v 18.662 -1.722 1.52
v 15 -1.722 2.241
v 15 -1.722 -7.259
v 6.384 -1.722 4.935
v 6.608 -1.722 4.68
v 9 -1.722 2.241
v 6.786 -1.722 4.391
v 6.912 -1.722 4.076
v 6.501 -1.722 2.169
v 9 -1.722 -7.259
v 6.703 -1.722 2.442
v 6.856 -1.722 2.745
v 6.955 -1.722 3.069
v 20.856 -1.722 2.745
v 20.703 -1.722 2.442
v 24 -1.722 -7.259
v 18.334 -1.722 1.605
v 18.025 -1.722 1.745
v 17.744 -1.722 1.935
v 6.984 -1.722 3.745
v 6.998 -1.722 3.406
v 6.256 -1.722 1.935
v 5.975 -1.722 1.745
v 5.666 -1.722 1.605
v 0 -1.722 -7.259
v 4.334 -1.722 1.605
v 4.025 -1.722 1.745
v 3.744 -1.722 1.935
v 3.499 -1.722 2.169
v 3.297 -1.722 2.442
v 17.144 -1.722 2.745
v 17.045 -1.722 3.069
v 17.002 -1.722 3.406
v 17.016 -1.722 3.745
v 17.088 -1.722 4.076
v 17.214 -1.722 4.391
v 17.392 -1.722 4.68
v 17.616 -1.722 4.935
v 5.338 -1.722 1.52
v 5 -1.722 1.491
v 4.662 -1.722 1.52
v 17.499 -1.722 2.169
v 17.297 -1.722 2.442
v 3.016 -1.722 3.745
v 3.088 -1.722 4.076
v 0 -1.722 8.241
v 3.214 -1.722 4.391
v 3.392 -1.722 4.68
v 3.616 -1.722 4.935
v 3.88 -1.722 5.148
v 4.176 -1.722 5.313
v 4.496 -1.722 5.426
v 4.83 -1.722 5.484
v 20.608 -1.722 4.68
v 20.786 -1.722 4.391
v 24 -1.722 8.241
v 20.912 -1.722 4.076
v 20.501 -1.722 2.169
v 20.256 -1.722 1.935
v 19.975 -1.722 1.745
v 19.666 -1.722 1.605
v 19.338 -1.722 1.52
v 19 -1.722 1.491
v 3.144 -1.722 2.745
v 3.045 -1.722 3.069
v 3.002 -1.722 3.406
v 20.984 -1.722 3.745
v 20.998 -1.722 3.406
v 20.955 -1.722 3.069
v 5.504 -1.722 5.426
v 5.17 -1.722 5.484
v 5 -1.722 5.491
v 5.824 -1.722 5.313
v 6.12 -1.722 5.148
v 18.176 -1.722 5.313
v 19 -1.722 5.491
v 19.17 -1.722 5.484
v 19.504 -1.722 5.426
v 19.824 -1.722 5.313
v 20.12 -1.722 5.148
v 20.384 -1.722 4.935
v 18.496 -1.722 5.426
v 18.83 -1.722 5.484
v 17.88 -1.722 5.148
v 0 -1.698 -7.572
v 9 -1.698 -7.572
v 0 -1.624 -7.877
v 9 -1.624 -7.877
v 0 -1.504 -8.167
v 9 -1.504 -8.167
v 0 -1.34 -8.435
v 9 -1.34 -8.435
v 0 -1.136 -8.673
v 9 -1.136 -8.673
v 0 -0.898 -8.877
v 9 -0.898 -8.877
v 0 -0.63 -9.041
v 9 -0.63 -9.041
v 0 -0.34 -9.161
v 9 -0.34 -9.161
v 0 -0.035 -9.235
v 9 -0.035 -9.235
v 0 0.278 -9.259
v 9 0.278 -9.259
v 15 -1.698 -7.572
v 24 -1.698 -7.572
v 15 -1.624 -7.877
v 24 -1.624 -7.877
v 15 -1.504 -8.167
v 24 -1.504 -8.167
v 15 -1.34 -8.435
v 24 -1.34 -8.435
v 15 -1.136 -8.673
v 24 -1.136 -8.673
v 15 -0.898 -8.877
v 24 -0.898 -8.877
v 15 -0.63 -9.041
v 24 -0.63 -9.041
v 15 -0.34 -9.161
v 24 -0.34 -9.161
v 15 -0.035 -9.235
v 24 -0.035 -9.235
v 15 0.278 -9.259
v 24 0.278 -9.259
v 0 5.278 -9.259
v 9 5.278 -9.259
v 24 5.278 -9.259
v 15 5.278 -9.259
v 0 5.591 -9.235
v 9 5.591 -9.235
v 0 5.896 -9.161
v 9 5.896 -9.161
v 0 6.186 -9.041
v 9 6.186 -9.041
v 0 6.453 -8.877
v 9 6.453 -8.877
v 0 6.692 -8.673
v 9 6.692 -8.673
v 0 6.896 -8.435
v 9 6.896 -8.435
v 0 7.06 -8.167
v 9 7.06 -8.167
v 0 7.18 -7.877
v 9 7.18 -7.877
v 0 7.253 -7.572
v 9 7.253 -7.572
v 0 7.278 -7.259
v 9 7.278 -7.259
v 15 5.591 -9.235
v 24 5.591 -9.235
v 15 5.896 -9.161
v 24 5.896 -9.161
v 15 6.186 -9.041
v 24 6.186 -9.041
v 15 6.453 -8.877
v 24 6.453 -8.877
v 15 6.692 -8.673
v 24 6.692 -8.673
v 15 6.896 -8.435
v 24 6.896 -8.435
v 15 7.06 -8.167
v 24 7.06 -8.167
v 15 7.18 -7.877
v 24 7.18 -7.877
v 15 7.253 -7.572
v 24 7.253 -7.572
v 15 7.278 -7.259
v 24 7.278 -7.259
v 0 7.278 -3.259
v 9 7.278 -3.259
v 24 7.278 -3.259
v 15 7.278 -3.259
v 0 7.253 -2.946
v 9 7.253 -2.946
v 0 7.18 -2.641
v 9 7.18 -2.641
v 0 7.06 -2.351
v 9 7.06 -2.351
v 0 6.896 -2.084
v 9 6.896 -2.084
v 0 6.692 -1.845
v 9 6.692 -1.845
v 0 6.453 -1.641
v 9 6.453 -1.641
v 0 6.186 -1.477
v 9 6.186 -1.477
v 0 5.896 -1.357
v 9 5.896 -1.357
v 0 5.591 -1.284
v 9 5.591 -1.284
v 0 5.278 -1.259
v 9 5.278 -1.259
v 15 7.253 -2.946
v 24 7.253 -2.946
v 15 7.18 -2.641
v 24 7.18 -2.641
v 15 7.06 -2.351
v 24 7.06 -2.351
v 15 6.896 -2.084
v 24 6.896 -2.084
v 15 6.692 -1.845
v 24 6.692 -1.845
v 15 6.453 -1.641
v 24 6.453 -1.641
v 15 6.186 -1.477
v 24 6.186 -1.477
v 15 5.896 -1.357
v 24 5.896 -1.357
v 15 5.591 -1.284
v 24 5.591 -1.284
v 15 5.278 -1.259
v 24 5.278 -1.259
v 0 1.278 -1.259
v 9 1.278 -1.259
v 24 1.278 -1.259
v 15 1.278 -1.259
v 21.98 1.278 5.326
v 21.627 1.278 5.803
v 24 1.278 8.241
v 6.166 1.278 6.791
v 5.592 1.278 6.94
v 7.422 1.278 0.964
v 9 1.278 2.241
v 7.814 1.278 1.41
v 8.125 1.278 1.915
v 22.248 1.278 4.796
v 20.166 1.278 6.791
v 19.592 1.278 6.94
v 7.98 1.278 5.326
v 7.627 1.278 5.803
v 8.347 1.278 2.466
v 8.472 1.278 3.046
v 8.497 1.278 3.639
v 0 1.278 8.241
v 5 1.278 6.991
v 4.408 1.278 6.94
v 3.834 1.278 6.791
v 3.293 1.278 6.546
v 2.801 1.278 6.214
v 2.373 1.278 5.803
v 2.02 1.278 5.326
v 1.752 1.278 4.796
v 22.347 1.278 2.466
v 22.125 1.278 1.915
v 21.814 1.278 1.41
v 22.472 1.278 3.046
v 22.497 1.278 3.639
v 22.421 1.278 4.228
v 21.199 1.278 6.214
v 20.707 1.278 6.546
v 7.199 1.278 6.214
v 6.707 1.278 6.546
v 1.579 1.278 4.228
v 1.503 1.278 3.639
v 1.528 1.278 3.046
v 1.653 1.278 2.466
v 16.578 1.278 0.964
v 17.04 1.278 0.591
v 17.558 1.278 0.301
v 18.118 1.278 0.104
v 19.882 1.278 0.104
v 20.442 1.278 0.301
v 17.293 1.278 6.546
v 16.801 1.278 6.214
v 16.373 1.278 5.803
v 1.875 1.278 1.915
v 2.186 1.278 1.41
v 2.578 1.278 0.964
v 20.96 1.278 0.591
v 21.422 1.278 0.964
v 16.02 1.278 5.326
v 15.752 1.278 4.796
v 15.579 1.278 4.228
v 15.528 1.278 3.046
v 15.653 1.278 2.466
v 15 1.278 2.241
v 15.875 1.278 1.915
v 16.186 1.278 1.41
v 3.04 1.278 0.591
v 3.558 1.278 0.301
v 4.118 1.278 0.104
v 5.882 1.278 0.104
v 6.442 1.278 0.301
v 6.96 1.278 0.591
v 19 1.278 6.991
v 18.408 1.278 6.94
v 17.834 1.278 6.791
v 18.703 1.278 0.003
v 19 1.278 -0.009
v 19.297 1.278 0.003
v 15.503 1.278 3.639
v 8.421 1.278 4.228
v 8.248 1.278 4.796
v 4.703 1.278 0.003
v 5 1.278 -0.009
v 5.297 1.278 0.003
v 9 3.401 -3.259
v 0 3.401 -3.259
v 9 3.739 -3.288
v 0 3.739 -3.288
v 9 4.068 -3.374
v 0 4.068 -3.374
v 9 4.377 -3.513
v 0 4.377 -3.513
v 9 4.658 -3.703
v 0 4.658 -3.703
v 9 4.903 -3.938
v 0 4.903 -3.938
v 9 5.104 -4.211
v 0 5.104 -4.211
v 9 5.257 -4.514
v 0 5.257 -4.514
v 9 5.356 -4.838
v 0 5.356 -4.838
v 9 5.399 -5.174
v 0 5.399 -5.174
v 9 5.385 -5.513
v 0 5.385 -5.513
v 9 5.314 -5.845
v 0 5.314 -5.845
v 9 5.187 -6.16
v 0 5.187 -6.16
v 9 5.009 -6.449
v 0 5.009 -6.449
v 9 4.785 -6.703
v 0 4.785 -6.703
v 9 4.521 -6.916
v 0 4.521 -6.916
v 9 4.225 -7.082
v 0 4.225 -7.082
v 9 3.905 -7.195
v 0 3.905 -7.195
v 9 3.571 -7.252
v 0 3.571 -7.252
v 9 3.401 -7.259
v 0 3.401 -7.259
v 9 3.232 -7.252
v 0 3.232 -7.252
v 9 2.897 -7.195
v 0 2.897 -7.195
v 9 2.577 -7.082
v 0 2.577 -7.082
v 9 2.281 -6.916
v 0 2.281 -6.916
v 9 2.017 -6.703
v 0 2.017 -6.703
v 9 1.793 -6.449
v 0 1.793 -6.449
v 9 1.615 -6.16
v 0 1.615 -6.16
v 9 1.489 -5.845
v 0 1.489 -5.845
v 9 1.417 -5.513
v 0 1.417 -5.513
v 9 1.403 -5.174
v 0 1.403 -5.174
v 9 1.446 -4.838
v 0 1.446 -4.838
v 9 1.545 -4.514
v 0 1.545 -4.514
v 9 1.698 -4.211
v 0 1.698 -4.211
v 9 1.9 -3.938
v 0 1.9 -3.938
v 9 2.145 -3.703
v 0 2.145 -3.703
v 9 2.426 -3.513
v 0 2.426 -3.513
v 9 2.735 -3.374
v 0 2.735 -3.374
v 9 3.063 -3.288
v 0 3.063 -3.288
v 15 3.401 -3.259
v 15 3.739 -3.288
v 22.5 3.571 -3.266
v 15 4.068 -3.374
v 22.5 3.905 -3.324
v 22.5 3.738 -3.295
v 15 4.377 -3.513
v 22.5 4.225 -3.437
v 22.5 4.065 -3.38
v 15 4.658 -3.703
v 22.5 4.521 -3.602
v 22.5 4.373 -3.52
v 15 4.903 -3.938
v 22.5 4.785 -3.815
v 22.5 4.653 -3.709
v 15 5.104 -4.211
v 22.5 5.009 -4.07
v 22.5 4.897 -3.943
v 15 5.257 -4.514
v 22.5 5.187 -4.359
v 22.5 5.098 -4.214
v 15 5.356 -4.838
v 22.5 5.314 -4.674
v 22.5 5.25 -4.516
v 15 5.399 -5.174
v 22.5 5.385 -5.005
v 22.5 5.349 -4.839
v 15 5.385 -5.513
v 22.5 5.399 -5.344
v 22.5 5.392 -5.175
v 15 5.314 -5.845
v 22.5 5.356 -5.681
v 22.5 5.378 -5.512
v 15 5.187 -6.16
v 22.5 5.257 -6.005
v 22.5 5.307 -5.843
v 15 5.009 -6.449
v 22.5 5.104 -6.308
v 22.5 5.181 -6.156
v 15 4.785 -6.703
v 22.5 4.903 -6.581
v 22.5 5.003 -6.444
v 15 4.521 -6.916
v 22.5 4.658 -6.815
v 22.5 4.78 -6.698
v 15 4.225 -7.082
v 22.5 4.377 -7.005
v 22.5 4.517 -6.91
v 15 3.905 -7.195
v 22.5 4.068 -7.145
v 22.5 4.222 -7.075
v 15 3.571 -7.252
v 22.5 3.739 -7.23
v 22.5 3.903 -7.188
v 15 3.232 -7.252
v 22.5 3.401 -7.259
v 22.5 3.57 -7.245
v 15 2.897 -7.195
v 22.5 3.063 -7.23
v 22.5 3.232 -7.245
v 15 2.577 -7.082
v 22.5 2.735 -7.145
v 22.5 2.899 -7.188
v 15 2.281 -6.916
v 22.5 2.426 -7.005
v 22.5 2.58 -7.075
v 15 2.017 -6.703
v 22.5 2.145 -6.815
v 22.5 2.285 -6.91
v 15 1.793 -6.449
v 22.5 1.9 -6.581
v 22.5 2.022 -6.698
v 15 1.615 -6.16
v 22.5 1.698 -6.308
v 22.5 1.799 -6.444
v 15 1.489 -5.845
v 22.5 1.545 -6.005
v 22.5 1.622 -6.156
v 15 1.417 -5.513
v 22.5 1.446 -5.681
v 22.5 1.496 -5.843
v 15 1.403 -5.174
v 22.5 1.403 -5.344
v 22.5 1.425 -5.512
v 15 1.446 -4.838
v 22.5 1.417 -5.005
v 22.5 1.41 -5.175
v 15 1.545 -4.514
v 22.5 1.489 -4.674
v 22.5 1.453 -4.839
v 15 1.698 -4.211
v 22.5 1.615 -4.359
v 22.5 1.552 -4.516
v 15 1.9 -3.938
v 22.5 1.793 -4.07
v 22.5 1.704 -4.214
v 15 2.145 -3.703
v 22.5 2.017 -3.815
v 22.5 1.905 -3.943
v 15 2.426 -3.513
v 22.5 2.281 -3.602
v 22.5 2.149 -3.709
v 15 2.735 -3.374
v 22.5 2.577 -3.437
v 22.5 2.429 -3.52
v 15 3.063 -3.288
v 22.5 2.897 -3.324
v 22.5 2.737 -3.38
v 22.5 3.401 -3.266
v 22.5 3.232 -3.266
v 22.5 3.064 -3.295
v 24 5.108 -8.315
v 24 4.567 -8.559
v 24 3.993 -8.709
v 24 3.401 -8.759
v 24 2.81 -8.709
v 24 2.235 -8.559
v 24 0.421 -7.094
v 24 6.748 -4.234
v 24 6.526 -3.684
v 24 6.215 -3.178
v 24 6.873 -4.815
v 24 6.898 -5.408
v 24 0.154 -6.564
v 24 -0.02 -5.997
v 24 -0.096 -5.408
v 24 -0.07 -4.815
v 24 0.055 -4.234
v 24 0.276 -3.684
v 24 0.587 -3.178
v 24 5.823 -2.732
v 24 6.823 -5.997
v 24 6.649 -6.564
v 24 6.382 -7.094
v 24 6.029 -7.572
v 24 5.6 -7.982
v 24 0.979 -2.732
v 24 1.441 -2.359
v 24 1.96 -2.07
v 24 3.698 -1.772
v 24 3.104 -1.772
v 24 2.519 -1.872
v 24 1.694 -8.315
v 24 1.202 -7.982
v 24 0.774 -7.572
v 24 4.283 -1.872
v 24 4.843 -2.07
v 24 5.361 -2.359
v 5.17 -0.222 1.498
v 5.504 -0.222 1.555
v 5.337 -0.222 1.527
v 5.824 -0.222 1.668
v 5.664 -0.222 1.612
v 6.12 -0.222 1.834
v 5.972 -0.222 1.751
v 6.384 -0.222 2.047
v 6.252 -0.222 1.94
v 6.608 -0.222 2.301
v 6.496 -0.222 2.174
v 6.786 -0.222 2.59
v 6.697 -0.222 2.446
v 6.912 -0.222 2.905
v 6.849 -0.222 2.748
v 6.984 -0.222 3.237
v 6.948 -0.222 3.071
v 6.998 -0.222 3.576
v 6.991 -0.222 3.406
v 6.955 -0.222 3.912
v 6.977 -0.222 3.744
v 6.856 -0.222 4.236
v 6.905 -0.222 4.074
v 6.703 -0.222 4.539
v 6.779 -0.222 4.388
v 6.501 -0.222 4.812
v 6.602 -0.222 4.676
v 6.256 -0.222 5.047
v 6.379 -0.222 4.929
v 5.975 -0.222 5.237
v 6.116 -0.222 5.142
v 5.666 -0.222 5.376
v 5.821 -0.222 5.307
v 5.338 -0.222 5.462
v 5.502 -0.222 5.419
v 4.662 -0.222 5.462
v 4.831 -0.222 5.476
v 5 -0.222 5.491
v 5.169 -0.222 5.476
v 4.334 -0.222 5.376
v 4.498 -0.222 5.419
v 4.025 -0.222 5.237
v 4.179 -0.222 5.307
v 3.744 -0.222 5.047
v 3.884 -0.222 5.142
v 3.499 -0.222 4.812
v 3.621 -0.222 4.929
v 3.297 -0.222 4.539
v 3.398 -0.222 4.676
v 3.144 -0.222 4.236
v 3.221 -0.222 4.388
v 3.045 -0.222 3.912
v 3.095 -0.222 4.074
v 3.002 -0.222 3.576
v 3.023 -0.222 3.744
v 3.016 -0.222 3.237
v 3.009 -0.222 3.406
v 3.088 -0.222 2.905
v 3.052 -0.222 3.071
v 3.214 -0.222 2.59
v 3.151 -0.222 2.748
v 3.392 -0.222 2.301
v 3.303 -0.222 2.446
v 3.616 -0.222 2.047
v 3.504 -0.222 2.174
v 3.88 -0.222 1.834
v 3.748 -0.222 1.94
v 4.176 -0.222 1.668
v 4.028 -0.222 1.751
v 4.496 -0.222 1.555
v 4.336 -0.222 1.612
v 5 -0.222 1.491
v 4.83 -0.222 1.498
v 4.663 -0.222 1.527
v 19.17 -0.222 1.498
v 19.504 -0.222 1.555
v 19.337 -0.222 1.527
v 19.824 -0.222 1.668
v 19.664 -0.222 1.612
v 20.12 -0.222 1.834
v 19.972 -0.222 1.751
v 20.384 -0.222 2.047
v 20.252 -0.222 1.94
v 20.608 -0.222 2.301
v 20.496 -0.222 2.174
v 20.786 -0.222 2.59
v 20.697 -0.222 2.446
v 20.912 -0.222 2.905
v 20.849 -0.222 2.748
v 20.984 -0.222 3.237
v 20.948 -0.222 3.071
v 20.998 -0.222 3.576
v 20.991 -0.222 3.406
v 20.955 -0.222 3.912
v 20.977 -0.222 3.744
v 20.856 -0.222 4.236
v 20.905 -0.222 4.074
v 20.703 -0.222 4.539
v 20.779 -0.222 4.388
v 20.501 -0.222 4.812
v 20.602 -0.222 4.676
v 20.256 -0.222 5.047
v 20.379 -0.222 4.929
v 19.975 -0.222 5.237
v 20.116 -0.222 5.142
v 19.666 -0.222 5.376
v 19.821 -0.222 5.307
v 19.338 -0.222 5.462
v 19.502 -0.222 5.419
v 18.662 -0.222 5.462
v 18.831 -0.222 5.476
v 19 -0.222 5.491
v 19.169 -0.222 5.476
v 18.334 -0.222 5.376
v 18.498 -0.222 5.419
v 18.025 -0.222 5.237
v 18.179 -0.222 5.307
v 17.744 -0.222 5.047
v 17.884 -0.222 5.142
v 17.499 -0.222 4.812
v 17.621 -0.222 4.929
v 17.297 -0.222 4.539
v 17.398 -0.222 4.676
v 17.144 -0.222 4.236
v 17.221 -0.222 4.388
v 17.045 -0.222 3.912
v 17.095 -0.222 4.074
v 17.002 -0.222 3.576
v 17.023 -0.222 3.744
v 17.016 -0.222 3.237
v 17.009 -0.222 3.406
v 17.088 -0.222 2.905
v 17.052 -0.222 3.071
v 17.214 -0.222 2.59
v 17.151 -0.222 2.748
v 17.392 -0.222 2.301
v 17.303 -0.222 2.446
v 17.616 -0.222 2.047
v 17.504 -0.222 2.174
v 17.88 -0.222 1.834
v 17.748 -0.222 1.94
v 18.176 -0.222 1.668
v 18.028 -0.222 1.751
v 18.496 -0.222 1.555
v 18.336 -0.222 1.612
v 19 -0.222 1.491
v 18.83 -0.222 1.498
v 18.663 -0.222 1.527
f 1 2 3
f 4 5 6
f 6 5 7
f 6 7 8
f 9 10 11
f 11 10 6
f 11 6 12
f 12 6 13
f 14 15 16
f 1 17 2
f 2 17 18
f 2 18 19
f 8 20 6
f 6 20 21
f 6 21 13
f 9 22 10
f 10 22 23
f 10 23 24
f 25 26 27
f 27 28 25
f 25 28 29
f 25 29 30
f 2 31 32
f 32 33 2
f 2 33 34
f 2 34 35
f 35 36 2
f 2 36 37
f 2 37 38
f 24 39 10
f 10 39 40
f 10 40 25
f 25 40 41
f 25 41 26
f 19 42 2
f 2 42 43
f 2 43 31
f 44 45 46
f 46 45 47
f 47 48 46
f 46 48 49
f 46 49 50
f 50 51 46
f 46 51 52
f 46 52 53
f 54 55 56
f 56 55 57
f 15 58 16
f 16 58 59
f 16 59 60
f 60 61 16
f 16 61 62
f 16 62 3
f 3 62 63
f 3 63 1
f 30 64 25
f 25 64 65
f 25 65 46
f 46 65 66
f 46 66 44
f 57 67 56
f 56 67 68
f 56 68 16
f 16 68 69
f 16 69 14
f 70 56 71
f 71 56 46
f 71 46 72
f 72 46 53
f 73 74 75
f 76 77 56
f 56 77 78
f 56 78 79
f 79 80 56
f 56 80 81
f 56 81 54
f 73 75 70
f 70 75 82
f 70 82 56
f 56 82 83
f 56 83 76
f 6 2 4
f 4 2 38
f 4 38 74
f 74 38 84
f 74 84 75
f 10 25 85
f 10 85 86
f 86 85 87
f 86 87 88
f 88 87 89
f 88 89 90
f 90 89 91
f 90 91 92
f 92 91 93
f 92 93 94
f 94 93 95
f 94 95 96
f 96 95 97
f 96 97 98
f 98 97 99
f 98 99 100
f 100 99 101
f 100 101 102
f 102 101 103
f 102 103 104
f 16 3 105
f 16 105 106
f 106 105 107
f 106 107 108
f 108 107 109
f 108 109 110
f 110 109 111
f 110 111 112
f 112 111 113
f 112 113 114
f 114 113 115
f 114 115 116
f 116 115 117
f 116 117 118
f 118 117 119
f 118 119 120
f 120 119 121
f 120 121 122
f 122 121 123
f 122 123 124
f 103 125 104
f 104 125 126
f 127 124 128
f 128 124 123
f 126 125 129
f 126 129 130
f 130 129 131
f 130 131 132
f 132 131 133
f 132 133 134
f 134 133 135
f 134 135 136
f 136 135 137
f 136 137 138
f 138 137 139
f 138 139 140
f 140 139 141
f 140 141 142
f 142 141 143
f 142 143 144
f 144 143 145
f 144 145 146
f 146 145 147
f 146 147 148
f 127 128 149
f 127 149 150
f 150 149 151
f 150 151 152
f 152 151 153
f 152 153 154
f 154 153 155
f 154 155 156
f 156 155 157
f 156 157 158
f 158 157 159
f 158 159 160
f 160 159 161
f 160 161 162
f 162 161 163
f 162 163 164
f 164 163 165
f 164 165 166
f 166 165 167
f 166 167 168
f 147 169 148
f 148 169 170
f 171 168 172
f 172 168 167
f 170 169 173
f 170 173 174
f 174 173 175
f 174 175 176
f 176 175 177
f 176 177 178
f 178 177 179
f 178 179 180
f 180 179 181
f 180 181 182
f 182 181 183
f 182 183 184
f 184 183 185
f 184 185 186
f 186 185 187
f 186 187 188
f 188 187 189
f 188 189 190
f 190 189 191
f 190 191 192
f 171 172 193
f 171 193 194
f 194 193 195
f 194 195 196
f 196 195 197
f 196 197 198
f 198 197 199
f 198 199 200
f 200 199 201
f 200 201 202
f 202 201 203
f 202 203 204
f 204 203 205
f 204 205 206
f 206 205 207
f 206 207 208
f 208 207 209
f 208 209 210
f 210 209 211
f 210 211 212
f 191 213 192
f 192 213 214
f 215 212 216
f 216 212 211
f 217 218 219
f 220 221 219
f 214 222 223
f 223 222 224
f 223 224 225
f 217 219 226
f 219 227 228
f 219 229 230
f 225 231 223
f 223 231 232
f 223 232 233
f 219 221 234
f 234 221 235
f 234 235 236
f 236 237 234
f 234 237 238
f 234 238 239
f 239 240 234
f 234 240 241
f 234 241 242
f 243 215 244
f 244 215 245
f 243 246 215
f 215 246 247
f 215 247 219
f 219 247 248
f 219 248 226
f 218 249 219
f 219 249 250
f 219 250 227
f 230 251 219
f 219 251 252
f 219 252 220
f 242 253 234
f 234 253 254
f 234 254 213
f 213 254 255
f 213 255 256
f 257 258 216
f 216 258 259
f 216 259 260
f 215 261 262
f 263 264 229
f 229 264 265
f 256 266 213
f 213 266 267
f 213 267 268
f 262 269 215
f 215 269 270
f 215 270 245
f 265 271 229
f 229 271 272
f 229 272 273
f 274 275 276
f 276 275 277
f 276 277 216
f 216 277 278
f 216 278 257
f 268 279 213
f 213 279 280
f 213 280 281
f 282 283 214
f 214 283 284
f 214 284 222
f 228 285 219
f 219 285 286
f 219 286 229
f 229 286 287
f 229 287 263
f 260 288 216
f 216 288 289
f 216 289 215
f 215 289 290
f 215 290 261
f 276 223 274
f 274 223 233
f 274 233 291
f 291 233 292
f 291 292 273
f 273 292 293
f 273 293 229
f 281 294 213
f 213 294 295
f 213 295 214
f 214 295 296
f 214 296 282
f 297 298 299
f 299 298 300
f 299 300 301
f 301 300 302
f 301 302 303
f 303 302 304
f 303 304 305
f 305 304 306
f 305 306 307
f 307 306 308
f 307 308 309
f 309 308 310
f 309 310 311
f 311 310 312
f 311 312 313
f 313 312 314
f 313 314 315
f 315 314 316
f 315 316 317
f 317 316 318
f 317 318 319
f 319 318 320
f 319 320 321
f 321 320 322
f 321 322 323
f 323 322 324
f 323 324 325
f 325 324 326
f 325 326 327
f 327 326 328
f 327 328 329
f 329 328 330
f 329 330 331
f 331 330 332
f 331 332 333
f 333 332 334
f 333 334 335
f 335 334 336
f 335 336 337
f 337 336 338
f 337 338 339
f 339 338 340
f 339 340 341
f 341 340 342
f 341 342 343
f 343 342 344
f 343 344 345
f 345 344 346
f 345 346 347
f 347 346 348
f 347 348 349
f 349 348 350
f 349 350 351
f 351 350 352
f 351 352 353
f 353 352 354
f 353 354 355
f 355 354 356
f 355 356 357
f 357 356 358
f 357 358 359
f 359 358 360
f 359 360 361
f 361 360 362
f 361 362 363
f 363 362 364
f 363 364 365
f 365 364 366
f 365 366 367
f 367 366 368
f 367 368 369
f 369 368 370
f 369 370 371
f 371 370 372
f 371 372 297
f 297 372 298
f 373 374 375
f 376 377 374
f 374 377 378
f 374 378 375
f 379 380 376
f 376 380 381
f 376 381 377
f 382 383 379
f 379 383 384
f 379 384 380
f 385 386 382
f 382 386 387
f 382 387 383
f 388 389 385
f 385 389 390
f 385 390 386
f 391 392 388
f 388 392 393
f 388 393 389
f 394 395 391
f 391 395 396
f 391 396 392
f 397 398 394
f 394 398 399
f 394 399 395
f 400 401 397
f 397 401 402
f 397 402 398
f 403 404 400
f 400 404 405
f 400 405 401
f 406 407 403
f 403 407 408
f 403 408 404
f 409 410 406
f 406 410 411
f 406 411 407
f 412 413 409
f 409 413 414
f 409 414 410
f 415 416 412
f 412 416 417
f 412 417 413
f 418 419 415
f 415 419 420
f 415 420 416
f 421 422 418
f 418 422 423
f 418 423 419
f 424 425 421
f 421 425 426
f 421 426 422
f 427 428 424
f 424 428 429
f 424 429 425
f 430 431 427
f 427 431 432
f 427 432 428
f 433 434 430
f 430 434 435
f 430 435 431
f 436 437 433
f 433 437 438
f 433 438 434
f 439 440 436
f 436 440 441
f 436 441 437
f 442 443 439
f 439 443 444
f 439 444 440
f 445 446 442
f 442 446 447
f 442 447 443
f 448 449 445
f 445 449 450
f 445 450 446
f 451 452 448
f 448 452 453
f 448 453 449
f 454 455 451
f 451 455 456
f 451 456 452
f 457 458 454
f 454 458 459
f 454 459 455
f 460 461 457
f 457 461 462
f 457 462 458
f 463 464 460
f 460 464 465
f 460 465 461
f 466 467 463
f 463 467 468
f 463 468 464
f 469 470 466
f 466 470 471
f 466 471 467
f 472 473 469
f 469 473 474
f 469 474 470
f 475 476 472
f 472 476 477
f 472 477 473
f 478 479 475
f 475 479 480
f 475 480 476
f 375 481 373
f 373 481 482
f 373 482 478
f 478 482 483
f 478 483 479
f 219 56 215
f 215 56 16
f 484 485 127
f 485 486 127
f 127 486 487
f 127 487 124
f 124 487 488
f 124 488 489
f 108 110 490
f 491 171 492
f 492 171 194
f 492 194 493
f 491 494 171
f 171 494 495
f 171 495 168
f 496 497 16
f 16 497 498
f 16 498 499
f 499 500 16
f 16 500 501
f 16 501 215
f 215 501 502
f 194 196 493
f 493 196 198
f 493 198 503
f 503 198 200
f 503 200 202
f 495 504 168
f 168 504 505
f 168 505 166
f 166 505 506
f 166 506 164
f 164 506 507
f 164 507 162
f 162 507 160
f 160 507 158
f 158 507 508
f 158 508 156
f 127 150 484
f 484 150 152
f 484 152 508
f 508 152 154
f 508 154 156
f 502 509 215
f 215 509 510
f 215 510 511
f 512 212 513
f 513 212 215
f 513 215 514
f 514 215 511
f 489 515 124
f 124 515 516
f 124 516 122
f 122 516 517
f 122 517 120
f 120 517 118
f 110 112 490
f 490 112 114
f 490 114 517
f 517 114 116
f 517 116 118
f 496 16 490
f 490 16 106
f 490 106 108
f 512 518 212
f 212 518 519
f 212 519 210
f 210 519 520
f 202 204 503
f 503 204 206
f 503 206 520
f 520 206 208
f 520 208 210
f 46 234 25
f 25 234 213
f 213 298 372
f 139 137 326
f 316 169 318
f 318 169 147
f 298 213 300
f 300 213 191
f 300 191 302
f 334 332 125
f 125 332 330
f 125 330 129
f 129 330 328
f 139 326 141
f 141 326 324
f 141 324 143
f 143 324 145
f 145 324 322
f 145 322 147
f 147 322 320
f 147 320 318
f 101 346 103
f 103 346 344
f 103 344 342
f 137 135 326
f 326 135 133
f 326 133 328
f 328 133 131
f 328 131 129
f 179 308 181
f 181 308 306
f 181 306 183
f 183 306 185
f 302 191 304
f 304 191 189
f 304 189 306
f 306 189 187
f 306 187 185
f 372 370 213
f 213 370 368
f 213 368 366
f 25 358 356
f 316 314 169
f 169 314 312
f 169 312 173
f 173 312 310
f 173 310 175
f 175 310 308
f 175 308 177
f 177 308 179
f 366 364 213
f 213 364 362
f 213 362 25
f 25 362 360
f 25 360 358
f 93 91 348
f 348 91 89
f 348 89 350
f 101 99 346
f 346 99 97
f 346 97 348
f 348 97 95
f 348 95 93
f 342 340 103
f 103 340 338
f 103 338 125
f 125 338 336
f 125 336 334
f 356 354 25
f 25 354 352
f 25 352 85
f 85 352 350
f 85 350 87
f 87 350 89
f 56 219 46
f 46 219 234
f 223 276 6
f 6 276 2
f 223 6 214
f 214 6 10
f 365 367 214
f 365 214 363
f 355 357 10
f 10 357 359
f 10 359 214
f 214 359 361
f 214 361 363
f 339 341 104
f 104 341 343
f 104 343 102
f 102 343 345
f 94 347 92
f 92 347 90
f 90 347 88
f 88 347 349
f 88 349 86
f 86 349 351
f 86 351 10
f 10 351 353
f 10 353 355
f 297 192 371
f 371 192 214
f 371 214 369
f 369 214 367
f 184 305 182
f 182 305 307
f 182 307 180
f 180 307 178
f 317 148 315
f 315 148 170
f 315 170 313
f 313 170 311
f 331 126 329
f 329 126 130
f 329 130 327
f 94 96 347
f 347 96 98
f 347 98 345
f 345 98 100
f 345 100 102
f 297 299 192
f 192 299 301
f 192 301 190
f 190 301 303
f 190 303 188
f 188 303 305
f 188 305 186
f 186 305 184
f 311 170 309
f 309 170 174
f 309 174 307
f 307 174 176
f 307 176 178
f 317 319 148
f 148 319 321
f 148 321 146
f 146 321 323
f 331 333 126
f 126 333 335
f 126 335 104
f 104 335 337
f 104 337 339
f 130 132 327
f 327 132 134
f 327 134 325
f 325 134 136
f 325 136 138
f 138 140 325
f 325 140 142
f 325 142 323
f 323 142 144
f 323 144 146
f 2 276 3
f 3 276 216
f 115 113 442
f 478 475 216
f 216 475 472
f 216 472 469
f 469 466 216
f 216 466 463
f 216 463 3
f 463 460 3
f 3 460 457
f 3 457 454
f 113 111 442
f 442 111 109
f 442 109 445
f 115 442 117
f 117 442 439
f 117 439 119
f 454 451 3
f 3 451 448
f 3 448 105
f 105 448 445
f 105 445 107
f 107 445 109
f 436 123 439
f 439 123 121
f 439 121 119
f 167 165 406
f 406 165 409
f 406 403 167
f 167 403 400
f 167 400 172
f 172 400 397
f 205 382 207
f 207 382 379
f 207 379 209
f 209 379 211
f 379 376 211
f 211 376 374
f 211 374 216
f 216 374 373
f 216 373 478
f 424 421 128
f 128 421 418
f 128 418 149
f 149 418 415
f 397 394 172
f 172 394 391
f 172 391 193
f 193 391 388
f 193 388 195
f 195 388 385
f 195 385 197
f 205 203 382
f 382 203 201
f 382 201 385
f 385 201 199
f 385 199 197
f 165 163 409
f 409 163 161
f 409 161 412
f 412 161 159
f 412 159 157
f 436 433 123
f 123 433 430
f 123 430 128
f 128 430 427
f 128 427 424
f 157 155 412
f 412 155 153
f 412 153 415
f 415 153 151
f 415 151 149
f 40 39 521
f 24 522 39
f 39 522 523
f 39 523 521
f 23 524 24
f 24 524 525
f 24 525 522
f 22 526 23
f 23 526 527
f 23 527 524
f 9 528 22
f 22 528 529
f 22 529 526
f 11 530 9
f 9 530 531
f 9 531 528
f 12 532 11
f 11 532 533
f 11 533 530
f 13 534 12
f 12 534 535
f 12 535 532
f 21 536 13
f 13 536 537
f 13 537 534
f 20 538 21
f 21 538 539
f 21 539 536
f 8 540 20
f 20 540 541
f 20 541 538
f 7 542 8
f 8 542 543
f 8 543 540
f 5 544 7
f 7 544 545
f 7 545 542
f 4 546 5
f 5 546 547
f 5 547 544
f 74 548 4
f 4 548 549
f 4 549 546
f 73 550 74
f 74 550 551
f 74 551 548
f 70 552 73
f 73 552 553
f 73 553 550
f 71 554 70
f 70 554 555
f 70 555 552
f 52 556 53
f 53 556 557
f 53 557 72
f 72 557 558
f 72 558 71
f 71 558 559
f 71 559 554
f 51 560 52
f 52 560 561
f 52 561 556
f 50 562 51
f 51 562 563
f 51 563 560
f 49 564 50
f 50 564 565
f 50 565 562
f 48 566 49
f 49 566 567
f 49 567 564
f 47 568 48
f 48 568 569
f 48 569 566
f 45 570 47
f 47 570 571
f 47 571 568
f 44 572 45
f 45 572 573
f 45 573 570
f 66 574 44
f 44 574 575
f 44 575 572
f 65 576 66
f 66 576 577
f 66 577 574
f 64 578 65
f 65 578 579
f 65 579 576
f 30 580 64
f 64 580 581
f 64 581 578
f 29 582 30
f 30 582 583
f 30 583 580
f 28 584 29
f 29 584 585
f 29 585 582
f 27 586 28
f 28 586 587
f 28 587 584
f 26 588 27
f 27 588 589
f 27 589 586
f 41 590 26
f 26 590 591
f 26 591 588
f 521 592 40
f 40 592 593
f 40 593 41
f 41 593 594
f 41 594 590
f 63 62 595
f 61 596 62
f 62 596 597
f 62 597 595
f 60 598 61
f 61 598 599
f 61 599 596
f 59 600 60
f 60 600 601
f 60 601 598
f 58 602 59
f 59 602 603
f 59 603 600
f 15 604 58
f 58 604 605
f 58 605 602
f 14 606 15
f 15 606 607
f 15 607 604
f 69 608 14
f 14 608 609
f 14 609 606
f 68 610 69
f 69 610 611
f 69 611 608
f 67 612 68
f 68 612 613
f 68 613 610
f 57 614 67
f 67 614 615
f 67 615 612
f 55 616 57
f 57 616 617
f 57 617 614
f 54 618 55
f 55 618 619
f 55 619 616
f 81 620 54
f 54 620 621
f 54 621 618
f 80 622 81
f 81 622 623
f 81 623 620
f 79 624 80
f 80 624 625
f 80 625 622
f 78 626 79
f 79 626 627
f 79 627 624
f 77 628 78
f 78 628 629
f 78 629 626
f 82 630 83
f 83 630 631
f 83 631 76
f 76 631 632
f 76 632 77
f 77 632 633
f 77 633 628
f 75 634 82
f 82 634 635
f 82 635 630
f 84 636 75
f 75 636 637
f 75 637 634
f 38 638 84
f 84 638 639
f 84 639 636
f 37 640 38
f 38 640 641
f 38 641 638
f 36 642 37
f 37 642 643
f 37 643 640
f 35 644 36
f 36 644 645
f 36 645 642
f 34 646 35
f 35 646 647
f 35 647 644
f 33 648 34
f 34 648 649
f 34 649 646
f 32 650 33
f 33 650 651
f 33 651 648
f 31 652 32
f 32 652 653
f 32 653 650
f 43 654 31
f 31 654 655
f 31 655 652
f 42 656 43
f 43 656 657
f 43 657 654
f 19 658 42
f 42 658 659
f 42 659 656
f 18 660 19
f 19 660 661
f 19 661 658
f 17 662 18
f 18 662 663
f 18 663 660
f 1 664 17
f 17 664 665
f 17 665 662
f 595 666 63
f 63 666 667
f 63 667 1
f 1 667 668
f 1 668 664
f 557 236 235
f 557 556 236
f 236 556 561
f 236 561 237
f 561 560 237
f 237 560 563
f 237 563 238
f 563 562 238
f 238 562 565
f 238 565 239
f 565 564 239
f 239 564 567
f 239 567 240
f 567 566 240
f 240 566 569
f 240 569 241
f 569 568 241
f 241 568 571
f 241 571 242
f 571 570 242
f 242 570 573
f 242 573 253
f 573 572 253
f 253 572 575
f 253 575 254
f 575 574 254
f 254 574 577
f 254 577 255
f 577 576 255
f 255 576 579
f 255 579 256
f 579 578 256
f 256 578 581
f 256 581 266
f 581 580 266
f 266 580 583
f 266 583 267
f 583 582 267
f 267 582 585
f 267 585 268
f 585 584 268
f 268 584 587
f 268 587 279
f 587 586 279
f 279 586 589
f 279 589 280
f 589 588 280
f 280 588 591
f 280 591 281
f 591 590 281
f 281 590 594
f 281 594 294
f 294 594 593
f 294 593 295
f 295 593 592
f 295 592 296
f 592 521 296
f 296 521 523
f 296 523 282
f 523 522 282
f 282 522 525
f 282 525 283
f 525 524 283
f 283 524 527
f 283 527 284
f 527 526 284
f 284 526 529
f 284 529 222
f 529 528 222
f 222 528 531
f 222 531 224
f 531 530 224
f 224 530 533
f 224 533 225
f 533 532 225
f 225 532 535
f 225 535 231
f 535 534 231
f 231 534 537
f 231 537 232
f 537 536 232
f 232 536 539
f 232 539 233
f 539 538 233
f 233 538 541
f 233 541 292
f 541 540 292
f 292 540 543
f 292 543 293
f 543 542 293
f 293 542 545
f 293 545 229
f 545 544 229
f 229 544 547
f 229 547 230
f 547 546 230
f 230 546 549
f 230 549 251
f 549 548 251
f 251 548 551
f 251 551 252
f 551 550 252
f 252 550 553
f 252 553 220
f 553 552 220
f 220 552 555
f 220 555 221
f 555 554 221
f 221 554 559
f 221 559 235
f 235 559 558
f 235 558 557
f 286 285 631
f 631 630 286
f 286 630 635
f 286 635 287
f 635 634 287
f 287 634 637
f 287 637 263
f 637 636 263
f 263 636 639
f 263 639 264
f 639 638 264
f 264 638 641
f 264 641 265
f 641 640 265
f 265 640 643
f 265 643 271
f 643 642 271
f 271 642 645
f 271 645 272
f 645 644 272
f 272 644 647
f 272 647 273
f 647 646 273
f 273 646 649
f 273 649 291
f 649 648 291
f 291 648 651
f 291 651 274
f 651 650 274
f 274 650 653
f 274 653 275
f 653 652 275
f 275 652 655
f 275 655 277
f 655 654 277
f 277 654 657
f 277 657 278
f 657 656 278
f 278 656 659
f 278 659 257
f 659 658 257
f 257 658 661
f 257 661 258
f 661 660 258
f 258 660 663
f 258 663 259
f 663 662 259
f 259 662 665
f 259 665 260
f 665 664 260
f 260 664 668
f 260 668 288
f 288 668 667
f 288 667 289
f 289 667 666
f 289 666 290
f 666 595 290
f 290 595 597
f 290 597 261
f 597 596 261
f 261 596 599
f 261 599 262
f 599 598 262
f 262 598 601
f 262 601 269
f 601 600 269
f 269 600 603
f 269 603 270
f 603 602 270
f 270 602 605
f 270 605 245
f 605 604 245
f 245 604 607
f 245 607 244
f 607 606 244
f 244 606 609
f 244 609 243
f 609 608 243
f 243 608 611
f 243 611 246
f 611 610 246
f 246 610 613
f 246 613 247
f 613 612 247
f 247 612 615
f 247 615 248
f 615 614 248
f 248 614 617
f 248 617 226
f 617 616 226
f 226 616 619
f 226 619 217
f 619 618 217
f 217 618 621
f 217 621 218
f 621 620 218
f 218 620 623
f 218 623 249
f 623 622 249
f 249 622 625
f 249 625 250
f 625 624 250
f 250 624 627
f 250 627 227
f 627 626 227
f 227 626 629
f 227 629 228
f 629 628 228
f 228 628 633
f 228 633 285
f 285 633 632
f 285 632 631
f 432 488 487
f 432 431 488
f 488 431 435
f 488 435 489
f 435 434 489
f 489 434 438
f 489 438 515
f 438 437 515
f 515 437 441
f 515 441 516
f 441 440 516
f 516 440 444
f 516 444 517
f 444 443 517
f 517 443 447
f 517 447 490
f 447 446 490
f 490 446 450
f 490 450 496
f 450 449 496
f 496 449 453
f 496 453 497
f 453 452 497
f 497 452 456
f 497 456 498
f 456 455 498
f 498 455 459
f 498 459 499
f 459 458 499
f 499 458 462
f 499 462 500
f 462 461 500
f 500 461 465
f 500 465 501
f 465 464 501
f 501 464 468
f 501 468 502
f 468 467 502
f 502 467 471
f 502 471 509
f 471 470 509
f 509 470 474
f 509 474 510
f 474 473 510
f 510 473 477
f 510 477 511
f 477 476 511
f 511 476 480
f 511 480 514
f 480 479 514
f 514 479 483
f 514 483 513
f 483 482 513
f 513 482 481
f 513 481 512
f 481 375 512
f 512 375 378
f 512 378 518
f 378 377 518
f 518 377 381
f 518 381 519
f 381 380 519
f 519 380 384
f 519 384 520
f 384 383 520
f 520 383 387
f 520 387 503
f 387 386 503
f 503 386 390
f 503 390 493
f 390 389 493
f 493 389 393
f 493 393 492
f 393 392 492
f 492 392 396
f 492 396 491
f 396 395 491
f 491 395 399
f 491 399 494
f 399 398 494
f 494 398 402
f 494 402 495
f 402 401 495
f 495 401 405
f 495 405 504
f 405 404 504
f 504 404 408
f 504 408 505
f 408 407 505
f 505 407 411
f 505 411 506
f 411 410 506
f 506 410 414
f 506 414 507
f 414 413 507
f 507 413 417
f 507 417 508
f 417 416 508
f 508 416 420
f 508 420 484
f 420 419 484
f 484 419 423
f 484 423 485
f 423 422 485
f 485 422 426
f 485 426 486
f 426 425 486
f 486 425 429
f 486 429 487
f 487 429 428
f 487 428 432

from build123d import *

# Parameters (mm, degrees)
ESQUISSE1_R                  = 2
BOSS_EXTRU_1_DEPTH           = 24
ENL_V_MAT_EXTRU_1_DEPTH      = 24
ENL_V_MAT_EXTRU_1_DEPTH_BACK = 24
ESQUISSE2_R                  = 2
ESQUISSE2_W                  = 6
ESQUISSE2_H                  = 11.5
CHANFREIN1_SIZE              = 1.5


with BuildPart() as part:
    # Esquisse1 → Boss.-Extru.1 (new body)
    with BuildSketch(Plane(origin=(0, 0, 0), x_dir=(0, 0, -1), z_dir=(1, 0, 0))):
        with BuildLine():
            Line((-8.240740741, 1.277777778), (1.259259259, 1.277777778))
            Line((1.259259259, 1.277777778), (1.259259259, 5.277777778))
            ThreePointArc((1.259259259, 5.277777778), (1.845045697, 6.69199134), (3.259259259, 7.277777778))
            Line((3.259259259, 7.277777778), (7.259259259, 7.277777778))
            ThreePointArc((7.259259259, 7.277777778), (8.673472822, 6.69199134), (9.259259259, 5.277777778))
            Line((9.259259259, 5.277777778), (9.259259259, 0.277777778))
            ThreePointArc((9.259259259, 0.277777778), (8.673472822, -1.136435785), (7.259259259, -1.722222222))
            Line((7.259259259, -1.722222222), (-8.240740741, -1.722222222))
            Line((-8.240740741, -1.722222222), (-8.240740741, 1.277777778))
        make_face()
        with Locations((5.259259259, 3.401253161)):
            Circle(ESQUISSE1_R, mode=Mode.SUBTRACT)
    extrude(amount=BOSS_EXTRU_1_DEPTH)

    # Esquisse2 → Enlèv. mat.-Extru.1 (cut, two sides: drawn at the far end of the back side and taken through both)
    with BuildSketch(Plane(origin=(0, 1.277777778, 0), x_dir=(1, 0, 0), z_dir=(0, 1, 0)).offset(-ENL_V_MAT_EXTRU_1_DEPTH_BACK)):
        with Locations(Location((19, -3.490740741, 0), (0, 0, 90))):
            Circle(ESQUISSE2_R)
        with Locations(Location((5, -3.490740741, 0), (0, 0, 90))):
            Circle(ESQUISSE2_R)
        with Locations((12, 3.509259259)):
            Rectangle(ESQUISSE2_W, ESQUISSE2_H)
    extrude(amount=ENL_V_MAT_EXTRU_1_DEPTH + ENL_V_MAT_EXTRU_1_DEPTH_BACK, mode=Mode.SUBTRACT)

    # Chanfrein1
    chanfrein1_edges = [part.edges().sort_by_distance(p)[0] for p in [
        (24, 3.401253161, -3.259259259),
        (19, 1.277777778, 5.490740741),
        (5, 1.277777778, 5.490740741),
    ]]
    chamfer(chanfrein1_edges, length=CHANFREIN1_SIZE)


solid = part.part
